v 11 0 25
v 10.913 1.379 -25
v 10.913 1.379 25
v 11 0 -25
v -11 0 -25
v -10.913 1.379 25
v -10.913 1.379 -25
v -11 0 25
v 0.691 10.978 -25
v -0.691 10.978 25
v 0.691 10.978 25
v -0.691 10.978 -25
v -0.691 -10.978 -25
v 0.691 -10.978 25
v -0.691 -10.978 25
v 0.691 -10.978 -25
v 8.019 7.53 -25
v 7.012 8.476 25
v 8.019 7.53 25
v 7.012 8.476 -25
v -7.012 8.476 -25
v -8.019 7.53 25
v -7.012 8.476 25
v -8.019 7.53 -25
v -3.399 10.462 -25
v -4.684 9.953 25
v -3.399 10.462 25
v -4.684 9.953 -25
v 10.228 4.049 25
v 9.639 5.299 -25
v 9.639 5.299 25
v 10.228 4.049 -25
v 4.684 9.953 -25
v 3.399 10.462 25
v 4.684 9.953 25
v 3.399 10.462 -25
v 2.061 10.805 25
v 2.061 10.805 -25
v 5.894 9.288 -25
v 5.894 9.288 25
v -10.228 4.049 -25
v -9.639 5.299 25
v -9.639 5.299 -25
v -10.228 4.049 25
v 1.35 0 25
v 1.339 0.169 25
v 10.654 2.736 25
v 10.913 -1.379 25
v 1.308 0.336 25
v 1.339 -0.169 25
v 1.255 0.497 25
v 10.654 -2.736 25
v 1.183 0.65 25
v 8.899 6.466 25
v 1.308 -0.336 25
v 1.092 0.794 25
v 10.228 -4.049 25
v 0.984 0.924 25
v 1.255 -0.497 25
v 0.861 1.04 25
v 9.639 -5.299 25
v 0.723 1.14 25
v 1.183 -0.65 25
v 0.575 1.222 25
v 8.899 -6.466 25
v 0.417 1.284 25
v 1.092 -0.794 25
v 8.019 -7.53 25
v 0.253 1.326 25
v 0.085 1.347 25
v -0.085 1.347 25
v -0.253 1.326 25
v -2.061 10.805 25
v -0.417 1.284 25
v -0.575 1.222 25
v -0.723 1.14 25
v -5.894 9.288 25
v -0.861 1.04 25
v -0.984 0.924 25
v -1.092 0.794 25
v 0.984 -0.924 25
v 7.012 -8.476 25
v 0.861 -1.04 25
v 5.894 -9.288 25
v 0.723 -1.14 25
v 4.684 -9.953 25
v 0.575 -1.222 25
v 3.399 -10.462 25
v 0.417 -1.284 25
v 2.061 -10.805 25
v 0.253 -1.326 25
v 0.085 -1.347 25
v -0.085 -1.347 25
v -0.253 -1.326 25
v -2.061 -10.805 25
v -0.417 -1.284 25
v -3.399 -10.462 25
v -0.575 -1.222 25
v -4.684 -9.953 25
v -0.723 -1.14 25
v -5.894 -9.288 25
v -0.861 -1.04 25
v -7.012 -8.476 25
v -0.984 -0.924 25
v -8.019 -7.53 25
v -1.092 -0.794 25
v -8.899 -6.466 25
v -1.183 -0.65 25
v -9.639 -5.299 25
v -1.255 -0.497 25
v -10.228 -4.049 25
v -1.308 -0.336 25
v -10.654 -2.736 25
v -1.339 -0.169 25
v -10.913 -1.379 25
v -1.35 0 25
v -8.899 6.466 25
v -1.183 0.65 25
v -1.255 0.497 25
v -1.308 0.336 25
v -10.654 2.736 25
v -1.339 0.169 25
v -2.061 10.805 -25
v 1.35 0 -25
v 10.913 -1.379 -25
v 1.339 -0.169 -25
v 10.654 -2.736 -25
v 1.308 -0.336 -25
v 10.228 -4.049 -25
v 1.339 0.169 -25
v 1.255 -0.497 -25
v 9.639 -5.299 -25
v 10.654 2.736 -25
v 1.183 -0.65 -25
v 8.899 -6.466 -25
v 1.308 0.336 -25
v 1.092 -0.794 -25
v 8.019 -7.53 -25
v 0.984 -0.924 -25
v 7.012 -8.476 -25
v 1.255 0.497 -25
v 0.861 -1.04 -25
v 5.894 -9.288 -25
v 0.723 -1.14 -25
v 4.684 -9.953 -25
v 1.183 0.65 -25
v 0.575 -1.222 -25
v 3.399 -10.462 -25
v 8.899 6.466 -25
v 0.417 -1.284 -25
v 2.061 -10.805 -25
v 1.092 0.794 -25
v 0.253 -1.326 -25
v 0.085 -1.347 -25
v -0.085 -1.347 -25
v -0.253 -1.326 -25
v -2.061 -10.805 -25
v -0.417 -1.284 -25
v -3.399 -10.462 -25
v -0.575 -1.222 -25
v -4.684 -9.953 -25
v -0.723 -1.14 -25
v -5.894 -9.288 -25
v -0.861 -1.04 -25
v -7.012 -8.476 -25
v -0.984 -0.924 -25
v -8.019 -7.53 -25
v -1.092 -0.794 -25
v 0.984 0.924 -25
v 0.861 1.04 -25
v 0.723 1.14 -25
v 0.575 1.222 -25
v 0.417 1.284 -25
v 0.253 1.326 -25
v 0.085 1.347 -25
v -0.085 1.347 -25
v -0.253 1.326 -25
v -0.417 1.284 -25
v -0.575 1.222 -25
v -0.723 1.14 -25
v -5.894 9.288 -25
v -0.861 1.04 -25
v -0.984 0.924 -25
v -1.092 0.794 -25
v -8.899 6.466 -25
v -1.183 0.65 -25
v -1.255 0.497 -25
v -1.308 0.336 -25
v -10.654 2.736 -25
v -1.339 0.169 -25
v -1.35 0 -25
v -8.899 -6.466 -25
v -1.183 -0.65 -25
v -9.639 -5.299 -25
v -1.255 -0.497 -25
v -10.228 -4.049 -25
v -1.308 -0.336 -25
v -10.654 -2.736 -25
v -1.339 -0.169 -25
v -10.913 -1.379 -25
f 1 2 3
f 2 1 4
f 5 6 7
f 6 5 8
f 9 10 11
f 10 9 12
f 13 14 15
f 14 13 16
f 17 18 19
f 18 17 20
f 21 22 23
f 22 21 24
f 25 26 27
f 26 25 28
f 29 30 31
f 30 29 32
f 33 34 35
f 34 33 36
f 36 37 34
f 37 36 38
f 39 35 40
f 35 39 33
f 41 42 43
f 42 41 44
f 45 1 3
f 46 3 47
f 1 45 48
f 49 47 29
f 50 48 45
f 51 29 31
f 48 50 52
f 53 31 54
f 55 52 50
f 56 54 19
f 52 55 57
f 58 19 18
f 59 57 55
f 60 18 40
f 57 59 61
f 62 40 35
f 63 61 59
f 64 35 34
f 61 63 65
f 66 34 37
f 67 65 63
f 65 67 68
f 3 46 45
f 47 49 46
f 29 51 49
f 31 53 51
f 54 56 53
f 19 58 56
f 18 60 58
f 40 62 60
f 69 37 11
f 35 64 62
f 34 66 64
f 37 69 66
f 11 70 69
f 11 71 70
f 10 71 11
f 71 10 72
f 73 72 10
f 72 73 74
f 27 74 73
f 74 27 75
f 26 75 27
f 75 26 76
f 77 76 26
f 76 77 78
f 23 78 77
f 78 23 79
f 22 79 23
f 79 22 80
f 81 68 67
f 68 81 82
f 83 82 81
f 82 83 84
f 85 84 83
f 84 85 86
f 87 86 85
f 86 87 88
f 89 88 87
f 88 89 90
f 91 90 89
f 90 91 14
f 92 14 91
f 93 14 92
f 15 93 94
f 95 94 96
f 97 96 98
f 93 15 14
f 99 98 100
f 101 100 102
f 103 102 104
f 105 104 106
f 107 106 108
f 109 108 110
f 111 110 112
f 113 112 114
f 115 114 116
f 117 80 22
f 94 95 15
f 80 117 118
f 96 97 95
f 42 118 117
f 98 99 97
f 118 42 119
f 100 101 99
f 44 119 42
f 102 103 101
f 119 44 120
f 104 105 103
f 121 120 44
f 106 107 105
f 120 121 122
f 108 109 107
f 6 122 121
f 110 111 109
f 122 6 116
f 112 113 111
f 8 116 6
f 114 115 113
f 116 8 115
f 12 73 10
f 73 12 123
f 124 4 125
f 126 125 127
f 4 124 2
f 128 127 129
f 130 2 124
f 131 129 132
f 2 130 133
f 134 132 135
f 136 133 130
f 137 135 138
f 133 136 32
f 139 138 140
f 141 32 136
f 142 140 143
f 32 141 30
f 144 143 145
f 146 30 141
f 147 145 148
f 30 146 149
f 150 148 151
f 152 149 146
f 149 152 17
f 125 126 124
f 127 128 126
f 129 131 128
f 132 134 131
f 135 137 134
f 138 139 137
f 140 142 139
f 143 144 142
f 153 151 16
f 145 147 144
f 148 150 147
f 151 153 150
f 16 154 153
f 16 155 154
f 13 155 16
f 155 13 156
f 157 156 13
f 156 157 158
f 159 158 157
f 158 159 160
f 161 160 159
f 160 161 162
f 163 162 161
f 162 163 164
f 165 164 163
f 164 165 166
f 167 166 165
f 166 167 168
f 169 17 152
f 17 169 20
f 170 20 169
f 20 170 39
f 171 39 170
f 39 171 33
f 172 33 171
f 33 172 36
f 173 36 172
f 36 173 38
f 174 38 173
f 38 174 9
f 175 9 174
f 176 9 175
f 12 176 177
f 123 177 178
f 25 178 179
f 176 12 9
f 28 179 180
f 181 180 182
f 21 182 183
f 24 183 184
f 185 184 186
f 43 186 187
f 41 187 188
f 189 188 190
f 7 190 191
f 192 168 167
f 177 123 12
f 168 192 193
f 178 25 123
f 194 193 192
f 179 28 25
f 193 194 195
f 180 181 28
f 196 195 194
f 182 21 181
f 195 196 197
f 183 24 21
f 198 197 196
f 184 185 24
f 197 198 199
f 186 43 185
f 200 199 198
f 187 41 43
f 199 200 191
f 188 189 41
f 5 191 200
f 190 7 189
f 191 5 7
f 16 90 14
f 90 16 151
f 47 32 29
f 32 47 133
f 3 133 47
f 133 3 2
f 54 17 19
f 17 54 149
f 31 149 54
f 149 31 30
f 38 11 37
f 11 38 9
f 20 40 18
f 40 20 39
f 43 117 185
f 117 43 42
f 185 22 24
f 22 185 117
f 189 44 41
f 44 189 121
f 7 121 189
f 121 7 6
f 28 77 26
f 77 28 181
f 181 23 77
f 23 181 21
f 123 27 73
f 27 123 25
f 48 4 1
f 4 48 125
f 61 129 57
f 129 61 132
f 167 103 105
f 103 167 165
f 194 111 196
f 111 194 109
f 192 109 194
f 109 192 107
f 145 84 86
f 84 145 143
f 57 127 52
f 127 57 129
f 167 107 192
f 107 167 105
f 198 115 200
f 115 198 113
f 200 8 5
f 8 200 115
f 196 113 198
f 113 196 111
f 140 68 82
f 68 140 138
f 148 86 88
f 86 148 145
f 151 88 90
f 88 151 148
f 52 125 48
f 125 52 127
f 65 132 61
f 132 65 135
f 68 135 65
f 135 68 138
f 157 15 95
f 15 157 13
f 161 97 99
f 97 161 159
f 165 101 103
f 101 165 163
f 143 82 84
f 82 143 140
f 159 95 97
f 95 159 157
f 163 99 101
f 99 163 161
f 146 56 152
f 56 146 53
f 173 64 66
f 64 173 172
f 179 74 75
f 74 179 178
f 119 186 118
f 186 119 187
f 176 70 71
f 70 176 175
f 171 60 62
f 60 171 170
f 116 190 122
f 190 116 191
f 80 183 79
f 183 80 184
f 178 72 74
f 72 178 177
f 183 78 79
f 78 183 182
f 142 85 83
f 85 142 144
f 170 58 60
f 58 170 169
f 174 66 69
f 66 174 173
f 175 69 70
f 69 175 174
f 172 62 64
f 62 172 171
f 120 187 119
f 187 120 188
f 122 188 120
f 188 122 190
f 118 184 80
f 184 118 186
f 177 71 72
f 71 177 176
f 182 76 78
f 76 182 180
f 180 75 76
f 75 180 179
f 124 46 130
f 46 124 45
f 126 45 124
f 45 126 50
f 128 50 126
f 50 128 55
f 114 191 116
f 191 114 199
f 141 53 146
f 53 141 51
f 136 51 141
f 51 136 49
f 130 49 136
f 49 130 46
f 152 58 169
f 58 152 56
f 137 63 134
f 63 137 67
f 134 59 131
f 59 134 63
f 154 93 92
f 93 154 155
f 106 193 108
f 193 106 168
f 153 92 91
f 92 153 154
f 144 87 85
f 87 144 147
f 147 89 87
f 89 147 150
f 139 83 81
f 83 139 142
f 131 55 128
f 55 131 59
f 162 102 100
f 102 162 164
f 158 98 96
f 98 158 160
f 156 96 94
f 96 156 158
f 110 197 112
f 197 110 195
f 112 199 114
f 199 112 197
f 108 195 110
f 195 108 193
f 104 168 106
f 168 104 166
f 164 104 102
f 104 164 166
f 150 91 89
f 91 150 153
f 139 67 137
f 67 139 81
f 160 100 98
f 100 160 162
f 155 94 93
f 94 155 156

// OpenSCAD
$fn = 50;


difference() {
	union() {
		translate(v = [0, 0, -25.0000000000]) {
			cylinder(h = 50, r = 11.0000000000);
		}
	}
	union() {
		translate(v = [0, 0, -100.0000000000]) {
			cylinder(h = 200, r = 1.3500000000);
		}
	}
}
